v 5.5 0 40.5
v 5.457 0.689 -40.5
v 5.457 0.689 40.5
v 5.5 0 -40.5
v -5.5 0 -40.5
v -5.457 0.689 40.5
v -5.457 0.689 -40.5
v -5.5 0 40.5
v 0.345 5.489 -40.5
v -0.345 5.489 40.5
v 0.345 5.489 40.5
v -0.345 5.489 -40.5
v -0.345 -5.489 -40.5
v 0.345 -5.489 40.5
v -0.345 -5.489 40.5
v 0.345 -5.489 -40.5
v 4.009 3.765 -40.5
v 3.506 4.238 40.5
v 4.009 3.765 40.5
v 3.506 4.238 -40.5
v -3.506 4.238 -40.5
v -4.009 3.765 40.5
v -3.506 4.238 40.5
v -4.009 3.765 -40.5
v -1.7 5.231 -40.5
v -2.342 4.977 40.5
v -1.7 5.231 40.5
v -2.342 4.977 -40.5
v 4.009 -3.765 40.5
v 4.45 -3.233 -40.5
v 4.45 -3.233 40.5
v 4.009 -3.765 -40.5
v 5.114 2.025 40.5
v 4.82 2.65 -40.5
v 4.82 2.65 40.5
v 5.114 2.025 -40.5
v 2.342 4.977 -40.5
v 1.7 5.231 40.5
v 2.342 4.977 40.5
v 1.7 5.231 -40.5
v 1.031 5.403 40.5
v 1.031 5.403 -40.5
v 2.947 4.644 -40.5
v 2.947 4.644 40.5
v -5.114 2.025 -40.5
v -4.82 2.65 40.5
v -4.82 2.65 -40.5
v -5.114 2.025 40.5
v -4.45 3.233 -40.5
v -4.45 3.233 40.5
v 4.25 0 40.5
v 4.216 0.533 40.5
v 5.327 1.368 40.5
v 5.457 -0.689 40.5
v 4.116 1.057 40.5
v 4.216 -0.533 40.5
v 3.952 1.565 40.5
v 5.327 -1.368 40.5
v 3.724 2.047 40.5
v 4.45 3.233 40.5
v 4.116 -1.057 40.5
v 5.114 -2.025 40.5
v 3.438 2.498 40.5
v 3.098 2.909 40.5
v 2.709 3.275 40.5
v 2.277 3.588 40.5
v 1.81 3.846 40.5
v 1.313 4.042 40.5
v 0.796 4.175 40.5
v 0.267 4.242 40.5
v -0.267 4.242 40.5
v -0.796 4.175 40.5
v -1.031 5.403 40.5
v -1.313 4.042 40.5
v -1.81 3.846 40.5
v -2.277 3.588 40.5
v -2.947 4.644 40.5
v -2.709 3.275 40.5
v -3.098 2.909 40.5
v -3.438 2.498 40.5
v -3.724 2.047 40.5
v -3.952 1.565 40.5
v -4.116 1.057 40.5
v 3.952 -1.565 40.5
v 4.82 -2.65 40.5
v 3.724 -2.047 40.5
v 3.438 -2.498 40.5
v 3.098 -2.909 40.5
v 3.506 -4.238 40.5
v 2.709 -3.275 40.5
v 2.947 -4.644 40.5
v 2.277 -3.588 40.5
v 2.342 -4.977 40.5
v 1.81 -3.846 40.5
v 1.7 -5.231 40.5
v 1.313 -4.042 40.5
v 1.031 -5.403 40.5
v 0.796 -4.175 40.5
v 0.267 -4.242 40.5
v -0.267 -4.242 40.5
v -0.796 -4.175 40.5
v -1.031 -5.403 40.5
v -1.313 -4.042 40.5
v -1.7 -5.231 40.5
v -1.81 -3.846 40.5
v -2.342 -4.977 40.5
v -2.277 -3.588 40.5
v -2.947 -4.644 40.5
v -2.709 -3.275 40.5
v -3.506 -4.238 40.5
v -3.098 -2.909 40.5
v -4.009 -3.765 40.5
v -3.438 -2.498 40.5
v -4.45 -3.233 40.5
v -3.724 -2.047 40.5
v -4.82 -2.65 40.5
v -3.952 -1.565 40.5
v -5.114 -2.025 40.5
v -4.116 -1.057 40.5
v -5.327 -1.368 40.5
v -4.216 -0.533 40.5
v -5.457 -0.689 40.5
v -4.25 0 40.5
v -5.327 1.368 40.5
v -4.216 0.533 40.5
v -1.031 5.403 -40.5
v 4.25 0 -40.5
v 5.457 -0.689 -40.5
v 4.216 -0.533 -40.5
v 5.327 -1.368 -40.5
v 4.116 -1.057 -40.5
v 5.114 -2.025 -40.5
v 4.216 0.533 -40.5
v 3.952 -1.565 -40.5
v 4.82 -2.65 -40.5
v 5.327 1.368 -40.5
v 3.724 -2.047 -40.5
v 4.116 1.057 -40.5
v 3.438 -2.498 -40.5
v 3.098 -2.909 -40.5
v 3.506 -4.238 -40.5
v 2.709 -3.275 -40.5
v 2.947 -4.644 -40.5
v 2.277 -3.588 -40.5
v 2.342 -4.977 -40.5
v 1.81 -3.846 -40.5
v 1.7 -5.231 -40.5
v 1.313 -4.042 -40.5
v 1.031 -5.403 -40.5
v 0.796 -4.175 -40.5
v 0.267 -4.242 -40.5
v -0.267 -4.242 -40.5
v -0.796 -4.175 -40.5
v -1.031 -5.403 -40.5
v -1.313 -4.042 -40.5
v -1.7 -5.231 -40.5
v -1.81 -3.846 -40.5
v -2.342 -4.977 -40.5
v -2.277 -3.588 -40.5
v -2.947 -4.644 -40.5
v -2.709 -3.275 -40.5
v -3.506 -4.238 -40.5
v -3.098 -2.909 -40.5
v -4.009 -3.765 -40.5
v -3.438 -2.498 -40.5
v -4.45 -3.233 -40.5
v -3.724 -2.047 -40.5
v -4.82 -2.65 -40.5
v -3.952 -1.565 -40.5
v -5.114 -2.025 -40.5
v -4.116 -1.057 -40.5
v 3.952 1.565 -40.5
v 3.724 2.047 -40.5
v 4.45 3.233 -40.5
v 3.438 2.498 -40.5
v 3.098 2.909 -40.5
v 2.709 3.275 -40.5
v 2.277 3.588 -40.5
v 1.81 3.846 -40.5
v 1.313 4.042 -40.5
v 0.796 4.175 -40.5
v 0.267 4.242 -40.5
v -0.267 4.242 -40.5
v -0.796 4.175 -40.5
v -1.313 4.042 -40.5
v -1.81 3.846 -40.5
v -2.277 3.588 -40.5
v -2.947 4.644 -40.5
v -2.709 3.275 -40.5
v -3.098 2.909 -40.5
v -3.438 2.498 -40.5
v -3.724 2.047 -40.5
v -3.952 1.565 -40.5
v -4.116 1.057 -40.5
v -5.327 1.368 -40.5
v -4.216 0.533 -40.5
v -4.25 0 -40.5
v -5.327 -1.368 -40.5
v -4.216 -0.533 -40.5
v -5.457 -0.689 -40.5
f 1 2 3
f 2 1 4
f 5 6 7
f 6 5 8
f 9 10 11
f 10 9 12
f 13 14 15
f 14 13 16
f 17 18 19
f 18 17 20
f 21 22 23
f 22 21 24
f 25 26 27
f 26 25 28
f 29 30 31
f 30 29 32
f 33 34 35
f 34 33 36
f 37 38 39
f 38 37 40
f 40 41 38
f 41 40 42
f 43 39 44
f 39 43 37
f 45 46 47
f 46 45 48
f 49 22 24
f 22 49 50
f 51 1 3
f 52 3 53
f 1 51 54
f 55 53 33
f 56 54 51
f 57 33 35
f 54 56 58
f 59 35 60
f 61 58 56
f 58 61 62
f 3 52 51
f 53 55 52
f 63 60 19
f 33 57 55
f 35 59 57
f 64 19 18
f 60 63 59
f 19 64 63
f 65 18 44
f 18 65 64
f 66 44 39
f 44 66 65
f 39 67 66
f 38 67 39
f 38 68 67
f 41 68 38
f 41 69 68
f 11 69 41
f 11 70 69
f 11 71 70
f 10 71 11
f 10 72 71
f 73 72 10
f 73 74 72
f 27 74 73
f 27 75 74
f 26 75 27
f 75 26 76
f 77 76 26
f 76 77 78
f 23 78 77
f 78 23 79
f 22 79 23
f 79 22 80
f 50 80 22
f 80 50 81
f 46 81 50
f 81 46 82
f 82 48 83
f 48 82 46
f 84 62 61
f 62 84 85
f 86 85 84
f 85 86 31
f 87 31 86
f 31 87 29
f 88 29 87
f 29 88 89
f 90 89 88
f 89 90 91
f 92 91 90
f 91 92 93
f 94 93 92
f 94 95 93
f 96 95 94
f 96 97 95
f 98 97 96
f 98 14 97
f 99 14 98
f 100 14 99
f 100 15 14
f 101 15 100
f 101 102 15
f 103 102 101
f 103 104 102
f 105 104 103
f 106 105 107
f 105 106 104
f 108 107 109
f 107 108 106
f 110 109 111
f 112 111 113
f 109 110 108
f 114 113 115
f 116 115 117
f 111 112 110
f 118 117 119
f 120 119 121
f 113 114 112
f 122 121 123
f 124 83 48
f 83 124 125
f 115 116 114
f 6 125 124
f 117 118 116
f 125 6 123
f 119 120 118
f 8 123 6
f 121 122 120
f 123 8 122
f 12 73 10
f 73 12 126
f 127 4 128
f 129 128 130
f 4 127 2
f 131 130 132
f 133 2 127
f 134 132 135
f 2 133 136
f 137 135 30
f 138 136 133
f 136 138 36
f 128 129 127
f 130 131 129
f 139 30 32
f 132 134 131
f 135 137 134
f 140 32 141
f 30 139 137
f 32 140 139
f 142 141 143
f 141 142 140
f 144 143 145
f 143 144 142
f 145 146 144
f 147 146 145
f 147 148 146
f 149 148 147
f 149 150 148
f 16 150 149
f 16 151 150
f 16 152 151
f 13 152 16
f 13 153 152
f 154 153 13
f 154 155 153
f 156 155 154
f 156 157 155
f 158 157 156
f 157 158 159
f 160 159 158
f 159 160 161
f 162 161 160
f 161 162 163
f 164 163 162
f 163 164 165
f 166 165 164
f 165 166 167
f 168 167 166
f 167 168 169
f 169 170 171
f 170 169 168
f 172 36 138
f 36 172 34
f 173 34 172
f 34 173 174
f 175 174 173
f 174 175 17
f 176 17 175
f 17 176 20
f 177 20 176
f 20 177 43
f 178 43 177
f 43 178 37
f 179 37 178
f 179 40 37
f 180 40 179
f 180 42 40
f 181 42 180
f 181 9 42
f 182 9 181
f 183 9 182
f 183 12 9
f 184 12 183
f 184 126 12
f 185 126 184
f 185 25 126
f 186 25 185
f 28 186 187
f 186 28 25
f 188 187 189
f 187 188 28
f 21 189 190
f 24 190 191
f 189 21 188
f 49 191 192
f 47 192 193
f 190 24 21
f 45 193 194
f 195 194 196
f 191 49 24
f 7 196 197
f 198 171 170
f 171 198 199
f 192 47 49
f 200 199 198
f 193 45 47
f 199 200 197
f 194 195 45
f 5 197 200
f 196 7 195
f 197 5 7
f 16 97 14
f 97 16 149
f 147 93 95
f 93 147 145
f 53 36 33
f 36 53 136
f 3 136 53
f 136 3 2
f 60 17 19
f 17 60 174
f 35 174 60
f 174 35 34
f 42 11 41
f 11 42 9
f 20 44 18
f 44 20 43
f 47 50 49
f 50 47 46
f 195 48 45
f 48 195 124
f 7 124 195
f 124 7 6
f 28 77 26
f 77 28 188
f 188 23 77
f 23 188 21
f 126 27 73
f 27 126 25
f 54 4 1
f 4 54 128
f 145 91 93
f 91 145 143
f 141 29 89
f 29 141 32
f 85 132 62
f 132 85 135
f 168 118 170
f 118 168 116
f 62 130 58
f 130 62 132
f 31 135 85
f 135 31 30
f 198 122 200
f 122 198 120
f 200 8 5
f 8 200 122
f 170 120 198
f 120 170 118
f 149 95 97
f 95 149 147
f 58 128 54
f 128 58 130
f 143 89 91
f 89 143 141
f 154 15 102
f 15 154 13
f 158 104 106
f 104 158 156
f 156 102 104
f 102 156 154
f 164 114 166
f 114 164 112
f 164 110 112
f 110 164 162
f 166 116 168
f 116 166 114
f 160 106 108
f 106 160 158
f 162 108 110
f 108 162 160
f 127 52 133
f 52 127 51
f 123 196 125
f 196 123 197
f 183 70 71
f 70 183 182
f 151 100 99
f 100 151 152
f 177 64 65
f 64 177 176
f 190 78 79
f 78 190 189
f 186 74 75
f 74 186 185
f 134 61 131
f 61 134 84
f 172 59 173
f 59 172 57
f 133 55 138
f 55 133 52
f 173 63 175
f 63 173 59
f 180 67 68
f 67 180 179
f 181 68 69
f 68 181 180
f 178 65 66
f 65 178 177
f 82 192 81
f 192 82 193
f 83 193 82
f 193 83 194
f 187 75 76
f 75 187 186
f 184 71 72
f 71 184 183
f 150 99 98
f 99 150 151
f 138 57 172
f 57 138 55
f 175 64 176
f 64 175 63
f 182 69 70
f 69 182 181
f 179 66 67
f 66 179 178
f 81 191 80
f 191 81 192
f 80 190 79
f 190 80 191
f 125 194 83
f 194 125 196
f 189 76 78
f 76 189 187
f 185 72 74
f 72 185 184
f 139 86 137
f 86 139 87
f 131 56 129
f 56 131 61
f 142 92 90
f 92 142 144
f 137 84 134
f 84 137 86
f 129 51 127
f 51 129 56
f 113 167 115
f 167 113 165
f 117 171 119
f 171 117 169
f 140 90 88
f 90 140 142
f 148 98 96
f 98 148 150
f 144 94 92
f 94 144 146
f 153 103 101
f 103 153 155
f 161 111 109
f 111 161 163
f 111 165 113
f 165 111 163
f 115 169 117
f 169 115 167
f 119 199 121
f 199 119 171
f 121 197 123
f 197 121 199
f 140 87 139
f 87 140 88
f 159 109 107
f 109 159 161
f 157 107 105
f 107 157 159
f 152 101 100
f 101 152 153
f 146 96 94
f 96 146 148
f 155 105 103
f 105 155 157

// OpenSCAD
$fn = 50;


difference() {
	union() {
		translate(v = [0, 0, -40.5000000000]) {
			cylinder(h = 81, r = 5.5000000000);
		}
	}
	union() {
		translate(v = [0, 0, -100.0000000000]) {
			cylinder(h = 200, r = 4.2500000000);
		}
	}
}
